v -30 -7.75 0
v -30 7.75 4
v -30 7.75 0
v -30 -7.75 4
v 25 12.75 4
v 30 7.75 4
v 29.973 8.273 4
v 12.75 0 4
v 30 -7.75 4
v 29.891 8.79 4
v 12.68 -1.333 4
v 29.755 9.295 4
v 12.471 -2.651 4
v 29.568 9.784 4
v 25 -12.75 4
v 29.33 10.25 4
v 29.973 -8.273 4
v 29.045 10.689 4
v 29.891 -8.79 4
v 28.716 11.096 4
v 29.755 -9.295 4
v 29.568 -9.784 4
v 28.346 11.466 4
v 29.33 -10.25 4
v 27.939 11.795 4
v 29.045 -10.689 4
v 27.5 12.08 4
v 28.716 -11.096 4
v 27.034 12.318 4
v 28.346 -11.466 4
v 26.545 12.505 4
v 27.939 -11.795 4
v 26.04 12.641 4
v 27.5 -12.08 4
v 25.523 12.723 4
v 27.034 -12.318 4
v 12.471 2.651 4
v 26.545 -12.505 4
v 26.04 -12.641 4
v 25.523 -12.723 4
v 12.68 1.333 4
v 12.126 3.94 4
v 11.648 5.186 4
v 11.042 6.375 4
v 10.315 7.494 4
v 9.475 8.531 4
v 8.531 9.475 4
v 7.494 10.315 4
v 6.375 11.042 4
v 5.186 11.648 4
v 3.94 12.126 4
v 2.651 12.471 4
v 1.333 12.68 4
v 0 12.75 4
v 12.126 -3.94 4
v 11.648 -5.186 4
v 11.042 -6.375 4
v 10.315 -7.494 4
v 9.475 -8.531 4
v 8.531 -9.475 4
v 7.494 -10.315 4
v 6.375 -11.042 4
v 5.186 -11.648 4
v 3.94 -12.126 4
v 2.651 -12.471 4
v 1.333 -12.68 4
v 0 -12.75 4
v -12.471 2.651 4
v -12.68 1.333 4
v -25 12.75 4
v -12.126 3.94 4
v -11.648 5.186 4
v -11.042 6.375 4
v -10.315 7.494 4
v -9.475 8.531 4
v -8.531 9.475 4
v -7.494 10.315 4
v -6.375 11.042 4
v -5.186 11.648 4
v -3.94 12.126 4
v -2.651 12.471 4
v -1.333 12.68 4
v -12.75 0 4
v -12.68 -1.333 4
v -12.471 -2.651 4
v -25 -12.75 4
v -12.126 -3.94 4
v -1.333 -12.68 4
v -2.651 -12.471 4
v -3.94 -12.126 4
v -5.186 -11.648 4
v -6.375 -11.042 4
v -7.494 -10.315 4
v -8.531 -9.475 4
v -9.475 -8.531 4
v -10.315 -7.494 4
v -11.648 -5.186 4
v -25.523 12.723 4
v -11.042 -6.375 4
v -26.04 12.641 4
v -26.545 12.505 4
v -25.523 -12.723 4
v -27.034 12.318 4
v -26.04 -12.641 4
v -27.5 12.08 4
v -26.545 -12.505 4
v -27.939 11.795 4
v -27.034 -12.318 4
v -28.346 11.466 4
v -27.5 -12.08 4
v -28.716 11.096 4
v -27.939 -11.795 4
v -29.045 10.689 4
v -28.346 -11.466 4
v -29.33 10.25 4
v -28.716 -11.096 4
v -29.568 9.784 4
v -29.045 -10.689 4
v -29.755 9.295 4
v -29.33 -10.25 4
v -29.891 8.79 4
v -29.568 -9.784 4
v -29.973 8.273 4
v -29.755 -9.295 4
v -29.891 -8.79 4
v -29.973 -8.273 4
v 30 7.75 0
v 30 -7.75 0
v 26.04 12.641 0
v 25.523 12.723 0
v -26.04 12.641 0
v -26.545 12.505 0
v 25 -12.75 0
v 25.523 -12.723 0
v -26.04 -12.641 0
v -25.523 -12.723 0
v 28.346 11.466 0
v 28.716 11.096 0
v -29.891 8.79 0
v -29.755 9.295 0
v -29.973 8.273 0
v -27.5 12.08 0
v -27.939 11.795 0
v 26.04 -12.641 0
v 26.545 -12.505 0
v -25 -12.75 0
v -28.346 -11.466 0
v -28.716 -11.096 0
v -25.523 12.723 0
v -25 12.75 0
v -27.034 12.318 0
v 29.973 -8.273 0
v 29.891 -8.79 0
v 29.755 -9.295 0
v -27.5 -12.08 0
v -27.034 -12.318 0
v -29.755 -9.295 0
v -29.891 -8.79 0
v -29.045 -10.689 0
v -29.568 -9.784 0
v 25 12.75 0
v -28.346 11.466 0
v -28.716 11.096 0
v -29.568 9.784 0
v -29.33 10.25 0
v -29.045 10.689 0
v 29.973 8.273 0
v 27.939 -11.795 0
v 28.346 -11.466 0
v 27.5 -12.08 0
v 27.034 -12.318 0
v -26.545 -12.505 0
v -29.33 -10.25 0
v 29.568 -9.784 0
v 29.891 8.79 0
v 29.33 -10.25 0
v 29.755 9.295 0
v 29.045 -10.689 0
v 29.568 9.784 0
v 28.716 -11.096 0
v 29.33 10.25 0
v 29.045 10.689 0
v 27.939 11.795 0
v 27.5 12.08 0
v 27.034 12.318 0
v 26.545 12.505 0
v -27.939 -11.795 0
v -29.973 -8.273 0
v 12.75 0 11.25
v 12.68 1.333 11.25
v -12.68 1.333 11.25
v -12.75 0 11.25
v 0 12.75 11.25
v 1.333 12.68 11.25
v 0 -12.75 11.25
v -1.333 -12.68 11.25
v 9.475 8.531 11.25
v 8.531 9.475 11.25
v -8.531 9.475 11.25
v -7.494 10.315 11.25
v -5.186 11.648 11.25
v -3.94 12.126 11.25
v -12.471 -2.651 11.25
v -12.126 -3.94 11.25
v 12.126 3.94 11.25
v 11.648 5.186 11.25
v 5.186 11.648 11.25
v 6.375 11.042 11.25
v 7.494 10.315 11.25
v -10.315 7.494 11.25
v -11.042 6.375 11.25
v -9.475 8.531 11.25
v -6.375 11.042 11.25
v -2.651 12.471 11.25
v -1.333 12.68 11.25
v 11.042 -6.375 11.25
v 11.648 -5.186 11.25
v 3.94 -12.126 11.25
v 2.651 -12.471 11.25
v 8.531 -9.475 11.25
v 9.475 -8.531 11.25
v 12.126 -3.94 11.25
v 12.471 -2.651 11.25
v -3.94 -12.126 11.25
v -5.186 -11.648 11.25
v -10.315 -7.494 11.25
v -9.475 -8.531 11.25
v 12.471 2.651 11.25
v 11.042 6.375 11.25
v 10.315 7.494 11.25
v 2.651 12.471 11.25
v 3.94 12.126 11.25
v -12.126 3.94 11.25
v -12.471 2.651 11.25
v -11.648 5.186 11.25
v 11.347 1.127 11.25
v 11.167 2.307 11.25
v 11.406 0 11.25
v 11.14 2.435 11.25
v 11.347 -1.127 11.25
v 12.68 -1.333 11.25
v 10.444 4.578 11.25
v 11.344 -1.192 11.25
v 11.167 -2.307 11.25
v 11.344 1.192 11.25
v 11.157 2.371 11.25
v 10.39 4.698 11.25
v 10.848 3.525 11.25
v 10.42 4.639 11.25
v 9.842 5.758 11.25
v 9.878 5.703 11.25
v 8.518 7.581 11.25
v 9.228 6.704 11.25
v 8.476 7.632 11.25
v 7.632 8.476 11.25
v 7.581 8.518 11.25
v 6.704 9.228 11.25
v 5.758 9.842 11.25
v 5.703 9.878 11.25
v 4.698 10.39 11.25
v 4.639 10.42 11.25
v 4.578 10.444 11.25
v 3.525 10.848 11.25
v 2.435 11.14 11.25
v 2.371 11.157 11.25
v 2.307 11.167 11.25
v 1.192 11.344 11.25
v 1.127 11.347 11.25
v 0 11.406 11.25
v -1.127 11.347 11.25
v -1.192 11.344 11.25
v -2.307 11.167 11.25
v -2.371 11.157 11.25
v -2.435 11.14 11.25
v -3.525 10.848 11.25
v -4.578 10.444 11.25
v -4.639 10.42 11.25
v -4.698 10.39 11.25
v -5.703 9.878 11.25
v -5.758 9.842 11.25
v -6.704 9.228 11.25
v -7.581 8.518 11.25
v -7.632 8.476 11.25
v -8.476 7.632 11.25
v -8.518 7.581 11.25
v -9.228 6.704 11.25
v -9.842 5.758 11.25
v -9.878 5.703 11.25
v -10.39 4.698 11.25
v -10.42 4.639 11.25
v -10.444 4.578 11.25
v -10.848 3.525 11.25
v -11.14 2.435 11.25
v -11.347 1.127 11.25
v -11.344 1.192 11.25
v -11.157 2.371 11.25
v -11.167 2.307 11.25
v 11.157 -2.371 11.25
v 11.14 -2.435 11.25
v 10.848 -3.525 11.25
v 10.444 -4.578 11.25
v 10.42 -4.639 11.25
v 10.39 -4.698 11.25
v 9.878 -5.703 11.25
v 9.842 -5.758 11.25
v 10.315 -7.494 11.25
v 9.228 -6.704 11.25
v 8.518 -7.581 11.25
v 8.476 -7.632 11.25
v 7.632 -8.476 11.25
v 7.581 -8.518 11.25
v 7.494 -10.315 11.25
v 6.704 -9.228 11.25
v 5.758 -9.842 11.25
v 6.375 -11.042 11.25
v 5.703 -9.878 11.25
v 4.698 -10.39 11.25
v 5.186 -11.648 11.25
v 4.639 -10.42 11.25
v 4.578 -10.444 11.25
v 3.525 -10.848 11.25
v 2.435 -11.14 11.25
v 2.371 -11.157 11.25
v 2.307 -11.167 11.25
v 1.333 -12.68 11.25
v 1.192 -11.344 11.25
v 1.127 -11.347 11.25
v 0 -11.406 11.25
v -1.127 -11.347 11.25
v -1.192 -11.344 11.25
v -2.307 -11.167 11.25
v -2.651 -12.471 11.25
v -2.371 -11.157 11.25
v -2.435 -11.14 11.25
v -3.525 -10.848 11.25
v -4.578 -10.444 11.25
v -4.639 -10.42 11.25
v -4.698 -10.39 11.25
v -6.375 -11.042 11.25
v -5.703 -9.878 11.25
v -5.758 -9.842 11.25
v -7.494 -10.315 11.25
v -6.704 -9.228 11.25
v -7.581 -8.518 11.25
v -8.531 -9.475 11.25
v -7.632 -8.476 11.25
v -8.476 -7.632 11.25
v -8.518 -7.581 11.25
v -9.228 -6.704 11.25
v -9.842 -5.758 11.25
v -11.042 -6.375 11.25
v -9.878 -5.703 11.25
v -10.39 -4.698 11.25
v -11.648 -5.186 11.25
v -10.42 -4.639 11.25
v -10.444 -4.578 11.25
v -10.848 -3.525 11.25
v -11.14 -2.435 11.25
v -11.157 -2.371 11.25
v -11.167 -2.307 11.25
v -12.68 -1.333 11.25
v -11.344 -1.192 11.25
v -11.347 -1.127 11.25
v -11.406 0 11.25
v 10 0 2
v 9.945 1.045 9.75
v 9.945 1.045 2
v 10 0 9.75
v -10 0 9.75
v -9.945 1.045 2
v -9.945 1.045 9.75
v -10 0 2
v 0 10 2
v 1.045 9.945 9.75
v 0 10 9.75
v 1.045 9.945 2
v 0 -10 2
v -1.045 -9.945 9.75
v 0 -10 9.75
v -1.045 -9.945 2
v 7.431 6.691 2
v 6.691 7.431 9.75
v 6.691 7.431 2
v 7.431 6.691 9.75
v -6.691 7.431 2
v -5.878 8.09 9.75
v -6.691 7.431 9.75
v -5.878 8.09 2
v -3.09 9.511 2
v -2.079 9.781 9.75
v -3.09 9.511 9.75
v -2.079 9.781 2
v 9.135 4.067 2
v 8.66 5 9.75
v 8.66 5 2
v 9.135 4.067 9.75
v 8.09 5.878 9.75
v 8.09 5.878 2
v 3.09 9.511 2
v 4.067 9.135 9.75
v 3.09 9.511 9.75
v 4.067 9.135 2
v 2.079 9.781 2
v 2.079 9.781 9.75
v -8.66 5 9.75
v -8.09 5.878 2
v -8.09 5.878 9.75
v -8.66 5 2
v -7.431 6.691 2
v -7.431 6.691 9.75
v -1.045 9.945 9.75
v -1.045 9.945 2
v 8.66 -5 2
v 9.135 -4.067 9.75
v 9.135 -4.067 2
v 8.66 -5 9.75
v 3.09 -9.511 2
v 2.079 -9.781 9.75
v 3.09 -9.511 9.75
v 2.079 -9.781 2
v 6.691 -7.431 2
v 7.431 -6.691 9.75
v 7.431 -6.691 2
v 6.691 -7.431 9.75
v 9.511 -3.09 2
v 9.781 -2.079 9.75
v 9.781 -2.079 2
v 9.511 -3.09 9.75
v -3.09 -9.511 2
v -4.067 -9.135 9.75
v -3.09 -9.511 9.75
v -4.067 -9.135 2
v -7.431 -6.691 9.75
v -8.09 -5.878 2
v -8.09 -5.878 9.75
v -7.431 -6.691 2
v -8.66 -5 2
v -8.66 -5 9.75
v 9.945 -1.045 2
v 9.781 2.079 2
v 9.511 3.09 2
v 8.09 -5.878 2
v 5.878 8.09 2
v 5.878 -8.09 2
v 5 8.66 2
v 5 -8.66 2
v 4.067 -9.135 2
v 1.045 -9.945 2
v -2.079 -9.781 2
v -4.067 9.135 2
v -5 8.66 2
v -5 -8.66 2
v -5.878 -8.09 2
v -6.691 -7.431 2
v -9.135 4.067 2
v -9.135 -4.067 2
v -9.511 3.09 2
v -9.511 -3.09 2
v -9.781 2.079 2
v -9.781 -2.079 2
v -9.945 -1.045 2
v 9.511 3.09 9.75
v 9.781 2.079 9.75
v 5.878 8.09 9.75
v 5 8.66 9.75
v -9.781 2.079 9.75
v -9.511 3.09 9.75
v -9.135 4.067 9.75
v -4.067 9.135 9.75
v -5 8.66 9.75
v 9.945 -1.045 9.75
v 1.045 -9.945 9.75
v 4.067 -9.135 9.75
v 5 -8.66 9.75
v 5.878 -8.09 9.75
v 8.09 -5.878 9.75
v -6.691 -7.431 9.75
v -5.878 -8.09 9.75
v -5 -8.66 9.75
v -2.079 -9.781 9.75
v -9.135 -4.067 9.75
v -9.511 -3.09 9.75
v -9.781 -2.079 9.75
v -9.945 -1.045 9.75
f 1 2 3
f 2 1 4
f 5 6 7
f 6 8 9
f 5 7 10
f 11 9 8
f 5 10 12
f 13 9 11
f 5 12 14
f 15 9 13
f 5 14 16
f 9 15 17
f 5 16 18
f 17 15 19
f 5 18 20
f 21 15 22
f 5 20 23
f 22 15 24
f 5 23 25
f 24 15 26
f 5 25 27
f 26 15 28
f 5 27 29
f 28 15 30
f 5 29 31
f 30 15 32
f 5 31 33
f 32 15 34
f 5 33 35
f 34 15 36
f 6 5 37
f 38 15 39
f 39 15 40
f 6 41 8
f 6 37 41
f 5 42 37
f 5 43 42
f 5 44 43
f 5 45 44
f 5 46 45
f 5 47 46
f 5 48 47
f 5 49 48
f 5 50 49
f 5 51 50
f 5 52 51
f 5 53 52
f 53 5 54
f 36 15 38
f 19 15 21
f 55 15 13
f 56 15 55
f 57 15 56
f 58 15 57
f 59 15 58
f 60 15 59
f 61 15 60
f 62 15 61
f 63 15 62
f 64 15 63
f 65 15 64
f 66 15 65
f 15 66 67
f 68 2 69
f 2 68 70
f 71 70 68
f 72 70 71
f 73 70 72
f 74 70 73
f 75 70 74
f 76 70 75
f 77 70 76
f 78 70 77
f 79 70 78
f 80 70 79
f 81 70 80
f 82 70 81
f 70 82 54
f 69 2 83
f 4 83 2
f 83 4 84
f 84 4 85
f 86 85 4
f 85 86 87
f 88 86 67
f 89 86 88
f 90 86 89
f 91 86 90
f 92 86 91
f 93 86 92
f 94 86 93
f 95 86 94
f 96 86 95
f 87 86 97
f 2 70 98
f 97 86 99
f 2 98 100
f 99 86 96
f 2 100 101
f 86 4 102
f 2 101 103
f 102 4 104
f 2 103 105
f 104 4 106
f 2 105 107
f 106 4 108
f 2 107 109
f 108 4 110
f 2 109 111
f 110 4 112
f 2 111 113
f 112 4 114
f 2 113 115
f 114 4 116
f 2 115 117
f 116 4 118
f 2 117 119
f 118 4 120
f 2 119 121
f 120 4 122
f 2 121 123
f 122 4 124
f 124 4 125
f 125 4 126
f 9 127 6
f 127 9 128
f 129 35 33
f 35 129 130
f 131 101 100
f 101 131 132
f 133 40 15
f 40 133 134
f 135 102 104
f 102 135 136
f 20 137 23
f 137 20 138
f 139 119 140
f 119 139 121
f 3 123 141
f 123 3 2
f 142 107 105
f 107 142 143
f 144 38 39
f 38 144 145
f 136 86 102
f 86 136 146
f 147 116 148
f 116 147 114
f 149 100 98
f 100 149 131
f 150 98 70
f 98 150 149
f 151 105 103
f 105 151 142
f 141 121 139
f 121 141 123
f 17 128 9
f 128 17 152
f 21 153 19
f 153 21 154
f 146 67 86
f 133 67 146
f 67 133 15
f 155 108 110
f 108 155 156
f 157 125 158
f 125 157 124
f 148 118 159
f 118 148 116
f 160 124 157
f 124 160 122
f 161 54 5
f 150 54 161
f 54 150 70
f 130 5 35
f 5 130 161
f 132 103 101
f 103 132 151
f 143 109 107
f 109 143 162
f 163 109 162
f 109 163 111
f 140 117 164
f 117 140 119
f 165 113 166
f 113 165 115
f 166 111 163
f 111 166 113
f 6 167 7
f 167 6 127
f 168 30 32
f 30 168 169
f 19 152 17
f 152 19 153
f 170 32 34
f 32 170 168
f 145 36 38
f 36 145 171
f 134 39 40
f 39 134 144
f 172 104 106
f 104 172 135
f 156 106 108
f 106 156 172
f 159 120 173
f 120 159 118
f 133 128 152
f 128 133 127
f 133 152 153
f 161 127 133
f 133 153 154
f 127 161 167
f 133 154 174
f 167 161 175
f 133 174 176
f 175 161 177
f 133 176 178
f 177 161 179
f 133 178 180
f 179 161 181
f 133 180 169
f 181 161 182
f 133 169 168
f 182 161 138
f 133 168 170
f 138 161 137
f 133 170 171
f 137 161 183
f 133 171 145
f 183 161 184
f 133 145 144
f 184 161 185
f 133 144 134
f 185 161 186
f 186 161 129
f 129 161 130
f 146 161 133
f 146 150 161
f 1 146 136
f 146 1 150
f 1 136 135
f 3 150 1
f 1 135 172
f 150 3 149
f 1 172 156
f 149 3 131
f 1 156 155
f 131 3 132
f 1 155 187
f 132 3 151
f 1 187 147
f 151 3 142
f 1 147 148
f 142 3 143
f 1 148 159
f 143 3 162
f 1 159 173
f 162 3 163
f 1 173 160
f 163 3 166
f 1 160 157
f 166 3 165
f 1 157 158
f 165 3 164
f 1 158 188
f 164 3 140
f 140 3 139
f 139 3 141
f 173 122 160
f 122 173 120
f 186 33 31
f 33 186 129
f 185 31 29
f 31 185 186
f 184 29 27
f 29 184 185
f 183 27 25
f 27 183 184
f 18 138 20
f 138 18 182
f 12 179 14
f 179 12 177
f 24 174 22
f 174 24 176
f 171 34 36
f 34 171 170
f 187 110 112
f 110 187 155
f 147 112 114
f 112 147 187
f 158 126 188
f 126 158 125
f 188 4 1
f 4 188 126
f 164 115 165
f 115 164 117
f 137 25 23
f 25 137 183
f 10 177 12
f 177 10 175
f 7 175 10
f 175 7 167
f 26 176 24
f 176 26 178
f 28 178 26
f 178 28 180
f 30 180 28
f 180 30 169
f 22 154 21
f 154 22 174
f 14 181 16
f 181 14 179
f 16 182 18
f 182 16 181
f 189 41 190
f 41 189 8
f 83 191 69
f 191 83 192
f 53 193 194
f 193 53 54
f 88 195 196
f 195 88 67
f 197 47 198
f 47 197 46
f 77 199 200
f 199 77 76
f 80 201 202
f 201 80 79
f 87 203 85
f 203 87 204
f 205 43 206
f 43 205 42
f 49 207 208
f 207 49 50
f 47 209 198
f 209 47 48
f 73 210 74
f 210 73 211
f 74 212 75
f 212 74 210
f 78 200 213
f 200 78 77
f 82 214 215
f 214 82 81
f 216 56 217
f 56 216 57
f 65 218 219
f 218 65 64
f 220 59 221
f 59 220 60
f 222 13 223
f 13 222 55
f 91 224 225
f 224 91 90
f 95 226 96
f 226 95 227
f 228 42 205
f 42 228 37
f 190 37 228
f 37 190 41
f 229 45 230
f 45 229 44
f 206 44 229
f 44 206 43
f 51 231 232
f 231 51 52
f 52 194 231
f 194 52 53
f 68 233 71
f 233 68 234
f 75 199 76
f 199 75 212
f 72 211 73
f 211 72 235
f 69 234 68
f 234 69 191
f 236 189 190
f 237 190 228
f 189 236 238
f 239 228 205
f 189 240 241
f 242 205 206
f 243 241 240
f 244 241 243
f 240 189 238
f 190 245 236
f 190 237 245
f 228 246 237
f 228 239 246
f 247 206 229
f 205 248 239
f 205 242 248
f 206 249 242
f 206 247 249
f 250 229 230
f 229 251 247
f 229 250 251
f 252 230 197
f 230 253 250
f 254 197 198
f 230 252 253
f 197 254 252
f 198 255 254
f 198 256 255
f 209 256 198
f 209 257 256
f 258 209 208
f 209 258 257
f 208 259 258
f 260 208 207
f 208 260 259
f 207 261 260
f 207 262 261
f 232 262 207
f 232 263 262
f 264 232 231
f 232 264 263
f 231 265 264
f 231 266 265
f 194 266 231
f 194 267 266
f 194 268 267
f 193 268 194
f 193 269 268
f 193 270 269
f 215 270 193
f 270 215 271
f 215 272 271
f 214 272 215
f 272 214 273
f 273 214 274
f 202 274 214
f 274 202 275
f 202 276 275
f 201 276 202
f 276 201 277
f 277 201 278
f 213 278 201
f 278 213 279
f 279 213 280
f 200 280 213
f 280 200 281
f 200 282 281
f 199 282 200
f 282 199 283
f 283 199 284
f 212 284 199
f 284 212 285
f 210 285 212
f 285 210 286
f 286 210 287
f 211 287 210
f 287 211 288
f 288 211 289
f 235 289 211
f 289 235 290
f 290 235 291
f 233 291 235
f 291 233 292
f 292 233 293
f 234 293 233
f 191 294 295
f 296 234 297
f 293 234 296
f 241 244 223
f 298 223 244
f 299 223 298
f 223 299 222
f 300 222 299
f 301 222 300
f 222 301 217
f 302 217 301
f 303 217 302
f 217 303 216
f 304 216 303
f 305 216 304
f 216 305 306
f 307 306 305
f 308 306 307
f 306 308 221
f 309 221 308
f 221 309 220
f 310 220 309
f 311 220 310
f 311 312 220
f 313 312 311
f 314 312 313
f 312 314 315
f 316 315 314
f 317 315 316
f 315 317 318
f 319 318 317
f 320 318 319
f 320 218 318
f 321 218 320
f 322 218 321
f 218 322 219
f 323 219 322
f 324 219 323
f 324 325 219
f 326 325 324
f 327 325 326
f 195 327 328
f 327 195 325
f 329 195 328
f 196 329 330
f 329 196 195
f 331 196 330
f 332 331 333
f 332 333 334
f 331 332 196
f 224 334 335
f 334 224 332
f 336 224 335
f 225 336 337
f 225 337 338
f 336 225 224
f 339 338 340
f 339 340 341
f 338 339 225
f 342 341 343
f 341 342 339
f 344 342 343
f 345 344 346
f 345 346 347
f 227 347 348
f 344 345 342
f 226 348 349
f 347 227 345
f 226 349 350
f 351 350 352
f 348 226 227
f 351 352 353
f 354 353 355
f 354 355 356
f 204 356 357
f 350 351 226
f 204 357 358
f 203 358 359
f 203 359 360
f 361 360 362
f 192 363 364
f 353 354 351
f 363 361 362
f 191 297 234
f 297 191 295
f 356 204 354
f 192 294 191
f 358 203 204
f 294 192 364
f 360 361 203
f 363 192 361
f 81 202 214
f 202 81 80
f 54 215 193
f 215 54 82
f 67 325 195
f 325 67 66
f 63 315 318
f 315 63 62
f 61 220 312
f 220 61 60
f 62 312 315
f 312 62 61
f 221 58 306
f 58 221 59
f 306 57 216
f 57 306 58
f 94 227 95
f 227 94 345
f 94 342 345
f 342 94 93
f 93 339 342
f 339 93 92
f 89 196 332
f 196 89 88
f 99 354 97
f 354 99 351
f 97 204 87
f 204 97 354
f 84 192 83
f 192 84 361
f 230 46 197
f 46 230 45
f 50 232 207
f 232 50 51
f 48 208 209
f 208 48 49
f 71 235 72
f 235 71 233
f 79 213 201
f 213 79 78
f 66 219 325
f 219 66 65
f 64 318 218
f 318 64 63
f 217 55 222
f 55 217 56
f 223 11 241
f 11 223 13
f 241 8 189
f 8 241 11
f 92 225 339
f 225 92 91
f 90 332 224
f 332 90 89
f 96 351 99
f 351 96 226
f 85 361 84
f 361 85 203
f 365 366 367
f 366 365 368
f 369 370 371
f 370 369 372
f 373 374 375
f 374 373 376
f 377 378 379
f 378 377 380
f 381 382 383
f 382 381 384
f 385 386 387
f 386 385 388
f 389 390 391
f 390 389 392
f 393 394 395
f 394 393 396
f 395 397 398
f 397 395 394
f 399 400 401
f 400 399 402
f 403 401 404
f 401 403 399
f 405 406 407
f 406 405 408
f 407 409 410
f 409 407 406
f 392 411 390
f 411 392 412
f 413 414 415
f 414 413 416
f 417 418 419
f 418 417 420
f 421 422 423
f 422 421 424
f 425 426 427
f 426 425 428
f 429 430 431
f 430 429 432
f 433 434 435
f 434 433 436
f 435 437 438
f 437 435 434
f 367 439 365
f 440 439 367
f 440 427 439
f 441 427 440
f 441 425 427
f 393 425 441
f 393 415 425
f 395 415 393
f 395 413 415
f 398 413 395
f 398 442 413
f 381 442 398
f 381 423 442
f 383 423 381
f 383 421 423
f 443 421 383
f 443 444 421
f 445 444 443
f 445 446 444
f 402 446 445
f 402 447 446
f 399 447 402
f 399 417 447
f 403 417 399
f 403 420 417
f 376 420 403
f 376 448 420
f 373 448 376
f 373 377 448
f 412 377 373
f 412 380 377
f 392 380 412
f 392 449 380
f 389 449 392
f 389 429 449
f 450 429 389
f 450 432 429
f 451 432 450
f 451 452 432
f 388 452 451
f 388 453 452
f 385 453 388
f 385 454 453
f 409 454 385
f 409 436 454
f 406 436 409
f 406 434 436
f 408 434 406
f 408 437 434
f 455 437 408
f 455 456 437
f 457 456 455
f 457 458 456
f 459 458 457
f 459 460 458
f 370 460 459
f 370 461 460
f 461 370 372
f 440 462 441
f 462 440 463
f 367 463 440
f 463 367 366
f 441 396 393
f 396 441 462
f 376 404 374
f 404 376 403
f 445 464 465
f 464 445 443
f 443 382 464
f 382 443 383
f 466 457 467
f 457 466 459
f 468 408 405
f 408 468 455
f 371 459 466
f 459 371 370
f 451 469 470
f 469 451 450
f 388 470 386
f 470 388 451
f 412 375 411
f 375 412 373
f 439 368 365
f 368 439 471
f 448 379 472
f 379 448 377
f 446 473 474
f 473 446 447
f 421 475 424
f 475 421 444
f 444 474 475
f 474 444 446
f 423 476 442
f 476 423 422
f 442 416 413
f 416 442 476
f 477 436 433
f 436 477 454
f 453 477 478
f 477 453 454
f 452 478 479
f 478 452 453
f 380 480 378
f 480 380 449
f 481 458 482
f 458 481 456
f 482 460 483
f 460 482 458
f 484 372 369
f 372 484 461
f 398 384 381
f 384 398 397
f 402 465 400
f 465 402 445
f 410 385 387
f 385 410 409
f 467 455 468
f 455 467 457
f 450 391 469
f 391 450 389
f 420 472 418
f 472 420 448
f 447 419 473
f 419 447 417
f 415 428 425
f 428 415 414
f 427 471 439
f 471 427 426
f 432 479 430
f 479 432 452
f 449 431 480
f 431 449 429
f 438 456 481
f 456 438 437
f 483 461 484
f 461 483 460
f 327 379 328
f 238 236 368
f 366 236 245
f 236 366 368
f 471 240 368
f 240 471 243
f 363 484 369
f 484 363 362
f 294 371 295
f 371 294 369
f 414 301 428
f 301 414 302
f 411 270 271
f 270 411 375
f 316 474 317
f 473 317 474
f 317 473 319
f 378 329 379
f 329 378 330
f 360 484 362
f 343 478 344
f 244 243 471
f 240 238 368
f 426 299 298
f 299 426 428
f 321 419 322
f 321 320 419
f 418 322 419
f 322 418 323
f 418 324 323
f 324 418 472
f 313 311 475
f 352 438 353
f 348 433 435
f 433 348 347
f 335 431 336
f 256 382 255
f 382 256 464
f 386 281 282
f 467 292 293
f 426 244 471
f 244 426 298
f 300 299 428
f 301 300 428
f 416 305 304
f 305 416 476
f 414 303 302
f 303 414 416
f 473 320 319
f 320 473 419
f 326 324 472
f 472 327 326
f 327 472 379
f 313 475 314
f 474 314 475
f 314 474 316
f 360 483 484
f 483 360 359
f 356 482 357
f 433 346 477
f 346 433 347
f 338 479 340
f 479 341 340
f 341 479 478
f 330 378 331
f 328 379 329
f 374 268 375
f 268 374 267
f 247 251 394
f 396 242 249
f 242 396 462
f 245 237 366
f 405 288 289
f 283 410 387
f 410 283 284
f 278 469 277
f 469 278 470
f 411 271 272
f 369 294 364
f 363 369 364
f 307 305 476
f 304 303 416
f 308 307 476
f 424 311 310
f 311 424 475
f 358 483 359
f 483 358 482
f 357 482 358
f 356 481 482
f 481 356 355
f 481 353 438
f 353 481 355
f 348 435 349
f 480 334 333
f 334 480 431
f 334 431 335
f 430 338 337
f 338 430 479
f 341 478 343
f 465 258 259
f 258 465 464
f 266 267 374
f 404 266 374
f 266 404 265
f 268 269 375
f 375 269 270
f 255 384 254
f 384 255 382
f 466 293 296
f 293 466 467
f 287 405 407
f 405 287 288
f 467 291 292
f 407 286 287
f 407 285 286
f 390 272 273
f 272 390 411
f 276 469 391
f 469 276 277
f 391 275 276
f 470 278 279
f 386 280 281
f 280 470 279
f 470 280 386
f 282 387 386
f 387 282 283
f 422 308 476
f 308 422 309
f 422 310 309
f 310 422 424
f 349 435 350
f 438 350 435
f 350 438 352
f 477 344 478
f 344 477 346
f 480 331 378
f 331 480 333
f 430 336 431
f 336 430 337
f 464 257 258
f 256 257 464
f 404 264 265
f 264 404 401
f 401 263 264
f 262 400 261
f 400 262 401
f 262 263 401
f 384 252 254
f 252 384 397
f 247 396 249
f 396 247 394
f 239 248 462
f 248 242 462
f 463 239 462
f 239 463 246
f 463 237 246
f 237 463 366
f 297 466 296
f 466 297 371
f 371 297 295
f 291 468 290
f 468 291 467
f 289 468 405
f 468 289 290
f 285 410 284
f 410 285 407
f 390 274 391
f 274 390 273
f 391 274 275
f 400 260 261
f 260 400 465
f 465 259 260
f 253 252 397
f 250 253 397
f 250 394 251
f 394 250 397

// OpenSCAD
// OpenPlate Holder
// Adjust the parameters below to fit your specific magnet.

$fn = 60; // Resolution for curves (higher = smoother)

module OpenPlate() {
    
    // Base Plate Dimensions
    width = 60;       // Total width of the base plate (mm)
    depth = 25.5;     // Total depth of the base plate (mm)
    plate_h = 4;      // Thickness of the base plate (mm)
    radius = 5;       // Corner radius for the base plate (mm)
    
    // Magnet Holder Dimensions
    magnet_d = 20;    // Diameter of the magnet hole (mm)
    magnet_h = 9.25;  // Height/Depth of the magnet hole (mm)
    wall = 2.75;      // Wall thickness around the magnet holder (mm)
    
    // Vertical Offsets & Features
    magnet_z_bottom = 2; // Thickness of material below the magnet (mm)
    chamfer = 1.5;       // Size of the chamfer at the top of the magnet hole (mm)

    difference() {
        union() {
            // 1. Create the Base Plate with rounded corners
            hull() {
                translate([-(width/2-radius), -(depth/2-radius), 0]) cylinder(r=radius, h=plate_h);
                translate([(width/2-radius), -(depth/2-radius), 0]) cylinder(r=radius, h=plate_h);
                translate([-(width/2-radius), (depth/2-radius), 0]) cylinder(r=radius, h=plate_h);
                translate([(width/2-radius), (depth/2-radius), 0]) cylinder(r=radius, h=plate_h);
            }

            // 2. Create the protrusion for the magnet holder
            // This sits on top of the base plate
            translate([0, 0, plate_h]) {
                cylinder(d=magnet_d + wall*2, h=(magnet_z_bottom + magnet_h - plate_h));
            }
        }
        
        // 3. Cut out the Magnet Hole
        union() {
            // Main magnet cutout starting from 'magnet_z_bottom' height
            translate([0,0, magnet_z_bottom]) {
                 cylinder(d=magnet_d, h=magnet_h + 10); // +10 to ensure clean cut through top
            }
            
            // Add chamfer to the top edge of the magnet hole
            // Position: at the top of the magnet hole
            // Z = (magnet_z_bottom + magnet_h) - chamfer
            translate([0, 0, magnet_z_bottom + magnet_h - chamfer]) {
                cylinder(d1=magnet_d, d2=magnet_d + chamfer*2, h=chamfer + 0.1); 
            }
        }
    }
}

OpenPlate();
